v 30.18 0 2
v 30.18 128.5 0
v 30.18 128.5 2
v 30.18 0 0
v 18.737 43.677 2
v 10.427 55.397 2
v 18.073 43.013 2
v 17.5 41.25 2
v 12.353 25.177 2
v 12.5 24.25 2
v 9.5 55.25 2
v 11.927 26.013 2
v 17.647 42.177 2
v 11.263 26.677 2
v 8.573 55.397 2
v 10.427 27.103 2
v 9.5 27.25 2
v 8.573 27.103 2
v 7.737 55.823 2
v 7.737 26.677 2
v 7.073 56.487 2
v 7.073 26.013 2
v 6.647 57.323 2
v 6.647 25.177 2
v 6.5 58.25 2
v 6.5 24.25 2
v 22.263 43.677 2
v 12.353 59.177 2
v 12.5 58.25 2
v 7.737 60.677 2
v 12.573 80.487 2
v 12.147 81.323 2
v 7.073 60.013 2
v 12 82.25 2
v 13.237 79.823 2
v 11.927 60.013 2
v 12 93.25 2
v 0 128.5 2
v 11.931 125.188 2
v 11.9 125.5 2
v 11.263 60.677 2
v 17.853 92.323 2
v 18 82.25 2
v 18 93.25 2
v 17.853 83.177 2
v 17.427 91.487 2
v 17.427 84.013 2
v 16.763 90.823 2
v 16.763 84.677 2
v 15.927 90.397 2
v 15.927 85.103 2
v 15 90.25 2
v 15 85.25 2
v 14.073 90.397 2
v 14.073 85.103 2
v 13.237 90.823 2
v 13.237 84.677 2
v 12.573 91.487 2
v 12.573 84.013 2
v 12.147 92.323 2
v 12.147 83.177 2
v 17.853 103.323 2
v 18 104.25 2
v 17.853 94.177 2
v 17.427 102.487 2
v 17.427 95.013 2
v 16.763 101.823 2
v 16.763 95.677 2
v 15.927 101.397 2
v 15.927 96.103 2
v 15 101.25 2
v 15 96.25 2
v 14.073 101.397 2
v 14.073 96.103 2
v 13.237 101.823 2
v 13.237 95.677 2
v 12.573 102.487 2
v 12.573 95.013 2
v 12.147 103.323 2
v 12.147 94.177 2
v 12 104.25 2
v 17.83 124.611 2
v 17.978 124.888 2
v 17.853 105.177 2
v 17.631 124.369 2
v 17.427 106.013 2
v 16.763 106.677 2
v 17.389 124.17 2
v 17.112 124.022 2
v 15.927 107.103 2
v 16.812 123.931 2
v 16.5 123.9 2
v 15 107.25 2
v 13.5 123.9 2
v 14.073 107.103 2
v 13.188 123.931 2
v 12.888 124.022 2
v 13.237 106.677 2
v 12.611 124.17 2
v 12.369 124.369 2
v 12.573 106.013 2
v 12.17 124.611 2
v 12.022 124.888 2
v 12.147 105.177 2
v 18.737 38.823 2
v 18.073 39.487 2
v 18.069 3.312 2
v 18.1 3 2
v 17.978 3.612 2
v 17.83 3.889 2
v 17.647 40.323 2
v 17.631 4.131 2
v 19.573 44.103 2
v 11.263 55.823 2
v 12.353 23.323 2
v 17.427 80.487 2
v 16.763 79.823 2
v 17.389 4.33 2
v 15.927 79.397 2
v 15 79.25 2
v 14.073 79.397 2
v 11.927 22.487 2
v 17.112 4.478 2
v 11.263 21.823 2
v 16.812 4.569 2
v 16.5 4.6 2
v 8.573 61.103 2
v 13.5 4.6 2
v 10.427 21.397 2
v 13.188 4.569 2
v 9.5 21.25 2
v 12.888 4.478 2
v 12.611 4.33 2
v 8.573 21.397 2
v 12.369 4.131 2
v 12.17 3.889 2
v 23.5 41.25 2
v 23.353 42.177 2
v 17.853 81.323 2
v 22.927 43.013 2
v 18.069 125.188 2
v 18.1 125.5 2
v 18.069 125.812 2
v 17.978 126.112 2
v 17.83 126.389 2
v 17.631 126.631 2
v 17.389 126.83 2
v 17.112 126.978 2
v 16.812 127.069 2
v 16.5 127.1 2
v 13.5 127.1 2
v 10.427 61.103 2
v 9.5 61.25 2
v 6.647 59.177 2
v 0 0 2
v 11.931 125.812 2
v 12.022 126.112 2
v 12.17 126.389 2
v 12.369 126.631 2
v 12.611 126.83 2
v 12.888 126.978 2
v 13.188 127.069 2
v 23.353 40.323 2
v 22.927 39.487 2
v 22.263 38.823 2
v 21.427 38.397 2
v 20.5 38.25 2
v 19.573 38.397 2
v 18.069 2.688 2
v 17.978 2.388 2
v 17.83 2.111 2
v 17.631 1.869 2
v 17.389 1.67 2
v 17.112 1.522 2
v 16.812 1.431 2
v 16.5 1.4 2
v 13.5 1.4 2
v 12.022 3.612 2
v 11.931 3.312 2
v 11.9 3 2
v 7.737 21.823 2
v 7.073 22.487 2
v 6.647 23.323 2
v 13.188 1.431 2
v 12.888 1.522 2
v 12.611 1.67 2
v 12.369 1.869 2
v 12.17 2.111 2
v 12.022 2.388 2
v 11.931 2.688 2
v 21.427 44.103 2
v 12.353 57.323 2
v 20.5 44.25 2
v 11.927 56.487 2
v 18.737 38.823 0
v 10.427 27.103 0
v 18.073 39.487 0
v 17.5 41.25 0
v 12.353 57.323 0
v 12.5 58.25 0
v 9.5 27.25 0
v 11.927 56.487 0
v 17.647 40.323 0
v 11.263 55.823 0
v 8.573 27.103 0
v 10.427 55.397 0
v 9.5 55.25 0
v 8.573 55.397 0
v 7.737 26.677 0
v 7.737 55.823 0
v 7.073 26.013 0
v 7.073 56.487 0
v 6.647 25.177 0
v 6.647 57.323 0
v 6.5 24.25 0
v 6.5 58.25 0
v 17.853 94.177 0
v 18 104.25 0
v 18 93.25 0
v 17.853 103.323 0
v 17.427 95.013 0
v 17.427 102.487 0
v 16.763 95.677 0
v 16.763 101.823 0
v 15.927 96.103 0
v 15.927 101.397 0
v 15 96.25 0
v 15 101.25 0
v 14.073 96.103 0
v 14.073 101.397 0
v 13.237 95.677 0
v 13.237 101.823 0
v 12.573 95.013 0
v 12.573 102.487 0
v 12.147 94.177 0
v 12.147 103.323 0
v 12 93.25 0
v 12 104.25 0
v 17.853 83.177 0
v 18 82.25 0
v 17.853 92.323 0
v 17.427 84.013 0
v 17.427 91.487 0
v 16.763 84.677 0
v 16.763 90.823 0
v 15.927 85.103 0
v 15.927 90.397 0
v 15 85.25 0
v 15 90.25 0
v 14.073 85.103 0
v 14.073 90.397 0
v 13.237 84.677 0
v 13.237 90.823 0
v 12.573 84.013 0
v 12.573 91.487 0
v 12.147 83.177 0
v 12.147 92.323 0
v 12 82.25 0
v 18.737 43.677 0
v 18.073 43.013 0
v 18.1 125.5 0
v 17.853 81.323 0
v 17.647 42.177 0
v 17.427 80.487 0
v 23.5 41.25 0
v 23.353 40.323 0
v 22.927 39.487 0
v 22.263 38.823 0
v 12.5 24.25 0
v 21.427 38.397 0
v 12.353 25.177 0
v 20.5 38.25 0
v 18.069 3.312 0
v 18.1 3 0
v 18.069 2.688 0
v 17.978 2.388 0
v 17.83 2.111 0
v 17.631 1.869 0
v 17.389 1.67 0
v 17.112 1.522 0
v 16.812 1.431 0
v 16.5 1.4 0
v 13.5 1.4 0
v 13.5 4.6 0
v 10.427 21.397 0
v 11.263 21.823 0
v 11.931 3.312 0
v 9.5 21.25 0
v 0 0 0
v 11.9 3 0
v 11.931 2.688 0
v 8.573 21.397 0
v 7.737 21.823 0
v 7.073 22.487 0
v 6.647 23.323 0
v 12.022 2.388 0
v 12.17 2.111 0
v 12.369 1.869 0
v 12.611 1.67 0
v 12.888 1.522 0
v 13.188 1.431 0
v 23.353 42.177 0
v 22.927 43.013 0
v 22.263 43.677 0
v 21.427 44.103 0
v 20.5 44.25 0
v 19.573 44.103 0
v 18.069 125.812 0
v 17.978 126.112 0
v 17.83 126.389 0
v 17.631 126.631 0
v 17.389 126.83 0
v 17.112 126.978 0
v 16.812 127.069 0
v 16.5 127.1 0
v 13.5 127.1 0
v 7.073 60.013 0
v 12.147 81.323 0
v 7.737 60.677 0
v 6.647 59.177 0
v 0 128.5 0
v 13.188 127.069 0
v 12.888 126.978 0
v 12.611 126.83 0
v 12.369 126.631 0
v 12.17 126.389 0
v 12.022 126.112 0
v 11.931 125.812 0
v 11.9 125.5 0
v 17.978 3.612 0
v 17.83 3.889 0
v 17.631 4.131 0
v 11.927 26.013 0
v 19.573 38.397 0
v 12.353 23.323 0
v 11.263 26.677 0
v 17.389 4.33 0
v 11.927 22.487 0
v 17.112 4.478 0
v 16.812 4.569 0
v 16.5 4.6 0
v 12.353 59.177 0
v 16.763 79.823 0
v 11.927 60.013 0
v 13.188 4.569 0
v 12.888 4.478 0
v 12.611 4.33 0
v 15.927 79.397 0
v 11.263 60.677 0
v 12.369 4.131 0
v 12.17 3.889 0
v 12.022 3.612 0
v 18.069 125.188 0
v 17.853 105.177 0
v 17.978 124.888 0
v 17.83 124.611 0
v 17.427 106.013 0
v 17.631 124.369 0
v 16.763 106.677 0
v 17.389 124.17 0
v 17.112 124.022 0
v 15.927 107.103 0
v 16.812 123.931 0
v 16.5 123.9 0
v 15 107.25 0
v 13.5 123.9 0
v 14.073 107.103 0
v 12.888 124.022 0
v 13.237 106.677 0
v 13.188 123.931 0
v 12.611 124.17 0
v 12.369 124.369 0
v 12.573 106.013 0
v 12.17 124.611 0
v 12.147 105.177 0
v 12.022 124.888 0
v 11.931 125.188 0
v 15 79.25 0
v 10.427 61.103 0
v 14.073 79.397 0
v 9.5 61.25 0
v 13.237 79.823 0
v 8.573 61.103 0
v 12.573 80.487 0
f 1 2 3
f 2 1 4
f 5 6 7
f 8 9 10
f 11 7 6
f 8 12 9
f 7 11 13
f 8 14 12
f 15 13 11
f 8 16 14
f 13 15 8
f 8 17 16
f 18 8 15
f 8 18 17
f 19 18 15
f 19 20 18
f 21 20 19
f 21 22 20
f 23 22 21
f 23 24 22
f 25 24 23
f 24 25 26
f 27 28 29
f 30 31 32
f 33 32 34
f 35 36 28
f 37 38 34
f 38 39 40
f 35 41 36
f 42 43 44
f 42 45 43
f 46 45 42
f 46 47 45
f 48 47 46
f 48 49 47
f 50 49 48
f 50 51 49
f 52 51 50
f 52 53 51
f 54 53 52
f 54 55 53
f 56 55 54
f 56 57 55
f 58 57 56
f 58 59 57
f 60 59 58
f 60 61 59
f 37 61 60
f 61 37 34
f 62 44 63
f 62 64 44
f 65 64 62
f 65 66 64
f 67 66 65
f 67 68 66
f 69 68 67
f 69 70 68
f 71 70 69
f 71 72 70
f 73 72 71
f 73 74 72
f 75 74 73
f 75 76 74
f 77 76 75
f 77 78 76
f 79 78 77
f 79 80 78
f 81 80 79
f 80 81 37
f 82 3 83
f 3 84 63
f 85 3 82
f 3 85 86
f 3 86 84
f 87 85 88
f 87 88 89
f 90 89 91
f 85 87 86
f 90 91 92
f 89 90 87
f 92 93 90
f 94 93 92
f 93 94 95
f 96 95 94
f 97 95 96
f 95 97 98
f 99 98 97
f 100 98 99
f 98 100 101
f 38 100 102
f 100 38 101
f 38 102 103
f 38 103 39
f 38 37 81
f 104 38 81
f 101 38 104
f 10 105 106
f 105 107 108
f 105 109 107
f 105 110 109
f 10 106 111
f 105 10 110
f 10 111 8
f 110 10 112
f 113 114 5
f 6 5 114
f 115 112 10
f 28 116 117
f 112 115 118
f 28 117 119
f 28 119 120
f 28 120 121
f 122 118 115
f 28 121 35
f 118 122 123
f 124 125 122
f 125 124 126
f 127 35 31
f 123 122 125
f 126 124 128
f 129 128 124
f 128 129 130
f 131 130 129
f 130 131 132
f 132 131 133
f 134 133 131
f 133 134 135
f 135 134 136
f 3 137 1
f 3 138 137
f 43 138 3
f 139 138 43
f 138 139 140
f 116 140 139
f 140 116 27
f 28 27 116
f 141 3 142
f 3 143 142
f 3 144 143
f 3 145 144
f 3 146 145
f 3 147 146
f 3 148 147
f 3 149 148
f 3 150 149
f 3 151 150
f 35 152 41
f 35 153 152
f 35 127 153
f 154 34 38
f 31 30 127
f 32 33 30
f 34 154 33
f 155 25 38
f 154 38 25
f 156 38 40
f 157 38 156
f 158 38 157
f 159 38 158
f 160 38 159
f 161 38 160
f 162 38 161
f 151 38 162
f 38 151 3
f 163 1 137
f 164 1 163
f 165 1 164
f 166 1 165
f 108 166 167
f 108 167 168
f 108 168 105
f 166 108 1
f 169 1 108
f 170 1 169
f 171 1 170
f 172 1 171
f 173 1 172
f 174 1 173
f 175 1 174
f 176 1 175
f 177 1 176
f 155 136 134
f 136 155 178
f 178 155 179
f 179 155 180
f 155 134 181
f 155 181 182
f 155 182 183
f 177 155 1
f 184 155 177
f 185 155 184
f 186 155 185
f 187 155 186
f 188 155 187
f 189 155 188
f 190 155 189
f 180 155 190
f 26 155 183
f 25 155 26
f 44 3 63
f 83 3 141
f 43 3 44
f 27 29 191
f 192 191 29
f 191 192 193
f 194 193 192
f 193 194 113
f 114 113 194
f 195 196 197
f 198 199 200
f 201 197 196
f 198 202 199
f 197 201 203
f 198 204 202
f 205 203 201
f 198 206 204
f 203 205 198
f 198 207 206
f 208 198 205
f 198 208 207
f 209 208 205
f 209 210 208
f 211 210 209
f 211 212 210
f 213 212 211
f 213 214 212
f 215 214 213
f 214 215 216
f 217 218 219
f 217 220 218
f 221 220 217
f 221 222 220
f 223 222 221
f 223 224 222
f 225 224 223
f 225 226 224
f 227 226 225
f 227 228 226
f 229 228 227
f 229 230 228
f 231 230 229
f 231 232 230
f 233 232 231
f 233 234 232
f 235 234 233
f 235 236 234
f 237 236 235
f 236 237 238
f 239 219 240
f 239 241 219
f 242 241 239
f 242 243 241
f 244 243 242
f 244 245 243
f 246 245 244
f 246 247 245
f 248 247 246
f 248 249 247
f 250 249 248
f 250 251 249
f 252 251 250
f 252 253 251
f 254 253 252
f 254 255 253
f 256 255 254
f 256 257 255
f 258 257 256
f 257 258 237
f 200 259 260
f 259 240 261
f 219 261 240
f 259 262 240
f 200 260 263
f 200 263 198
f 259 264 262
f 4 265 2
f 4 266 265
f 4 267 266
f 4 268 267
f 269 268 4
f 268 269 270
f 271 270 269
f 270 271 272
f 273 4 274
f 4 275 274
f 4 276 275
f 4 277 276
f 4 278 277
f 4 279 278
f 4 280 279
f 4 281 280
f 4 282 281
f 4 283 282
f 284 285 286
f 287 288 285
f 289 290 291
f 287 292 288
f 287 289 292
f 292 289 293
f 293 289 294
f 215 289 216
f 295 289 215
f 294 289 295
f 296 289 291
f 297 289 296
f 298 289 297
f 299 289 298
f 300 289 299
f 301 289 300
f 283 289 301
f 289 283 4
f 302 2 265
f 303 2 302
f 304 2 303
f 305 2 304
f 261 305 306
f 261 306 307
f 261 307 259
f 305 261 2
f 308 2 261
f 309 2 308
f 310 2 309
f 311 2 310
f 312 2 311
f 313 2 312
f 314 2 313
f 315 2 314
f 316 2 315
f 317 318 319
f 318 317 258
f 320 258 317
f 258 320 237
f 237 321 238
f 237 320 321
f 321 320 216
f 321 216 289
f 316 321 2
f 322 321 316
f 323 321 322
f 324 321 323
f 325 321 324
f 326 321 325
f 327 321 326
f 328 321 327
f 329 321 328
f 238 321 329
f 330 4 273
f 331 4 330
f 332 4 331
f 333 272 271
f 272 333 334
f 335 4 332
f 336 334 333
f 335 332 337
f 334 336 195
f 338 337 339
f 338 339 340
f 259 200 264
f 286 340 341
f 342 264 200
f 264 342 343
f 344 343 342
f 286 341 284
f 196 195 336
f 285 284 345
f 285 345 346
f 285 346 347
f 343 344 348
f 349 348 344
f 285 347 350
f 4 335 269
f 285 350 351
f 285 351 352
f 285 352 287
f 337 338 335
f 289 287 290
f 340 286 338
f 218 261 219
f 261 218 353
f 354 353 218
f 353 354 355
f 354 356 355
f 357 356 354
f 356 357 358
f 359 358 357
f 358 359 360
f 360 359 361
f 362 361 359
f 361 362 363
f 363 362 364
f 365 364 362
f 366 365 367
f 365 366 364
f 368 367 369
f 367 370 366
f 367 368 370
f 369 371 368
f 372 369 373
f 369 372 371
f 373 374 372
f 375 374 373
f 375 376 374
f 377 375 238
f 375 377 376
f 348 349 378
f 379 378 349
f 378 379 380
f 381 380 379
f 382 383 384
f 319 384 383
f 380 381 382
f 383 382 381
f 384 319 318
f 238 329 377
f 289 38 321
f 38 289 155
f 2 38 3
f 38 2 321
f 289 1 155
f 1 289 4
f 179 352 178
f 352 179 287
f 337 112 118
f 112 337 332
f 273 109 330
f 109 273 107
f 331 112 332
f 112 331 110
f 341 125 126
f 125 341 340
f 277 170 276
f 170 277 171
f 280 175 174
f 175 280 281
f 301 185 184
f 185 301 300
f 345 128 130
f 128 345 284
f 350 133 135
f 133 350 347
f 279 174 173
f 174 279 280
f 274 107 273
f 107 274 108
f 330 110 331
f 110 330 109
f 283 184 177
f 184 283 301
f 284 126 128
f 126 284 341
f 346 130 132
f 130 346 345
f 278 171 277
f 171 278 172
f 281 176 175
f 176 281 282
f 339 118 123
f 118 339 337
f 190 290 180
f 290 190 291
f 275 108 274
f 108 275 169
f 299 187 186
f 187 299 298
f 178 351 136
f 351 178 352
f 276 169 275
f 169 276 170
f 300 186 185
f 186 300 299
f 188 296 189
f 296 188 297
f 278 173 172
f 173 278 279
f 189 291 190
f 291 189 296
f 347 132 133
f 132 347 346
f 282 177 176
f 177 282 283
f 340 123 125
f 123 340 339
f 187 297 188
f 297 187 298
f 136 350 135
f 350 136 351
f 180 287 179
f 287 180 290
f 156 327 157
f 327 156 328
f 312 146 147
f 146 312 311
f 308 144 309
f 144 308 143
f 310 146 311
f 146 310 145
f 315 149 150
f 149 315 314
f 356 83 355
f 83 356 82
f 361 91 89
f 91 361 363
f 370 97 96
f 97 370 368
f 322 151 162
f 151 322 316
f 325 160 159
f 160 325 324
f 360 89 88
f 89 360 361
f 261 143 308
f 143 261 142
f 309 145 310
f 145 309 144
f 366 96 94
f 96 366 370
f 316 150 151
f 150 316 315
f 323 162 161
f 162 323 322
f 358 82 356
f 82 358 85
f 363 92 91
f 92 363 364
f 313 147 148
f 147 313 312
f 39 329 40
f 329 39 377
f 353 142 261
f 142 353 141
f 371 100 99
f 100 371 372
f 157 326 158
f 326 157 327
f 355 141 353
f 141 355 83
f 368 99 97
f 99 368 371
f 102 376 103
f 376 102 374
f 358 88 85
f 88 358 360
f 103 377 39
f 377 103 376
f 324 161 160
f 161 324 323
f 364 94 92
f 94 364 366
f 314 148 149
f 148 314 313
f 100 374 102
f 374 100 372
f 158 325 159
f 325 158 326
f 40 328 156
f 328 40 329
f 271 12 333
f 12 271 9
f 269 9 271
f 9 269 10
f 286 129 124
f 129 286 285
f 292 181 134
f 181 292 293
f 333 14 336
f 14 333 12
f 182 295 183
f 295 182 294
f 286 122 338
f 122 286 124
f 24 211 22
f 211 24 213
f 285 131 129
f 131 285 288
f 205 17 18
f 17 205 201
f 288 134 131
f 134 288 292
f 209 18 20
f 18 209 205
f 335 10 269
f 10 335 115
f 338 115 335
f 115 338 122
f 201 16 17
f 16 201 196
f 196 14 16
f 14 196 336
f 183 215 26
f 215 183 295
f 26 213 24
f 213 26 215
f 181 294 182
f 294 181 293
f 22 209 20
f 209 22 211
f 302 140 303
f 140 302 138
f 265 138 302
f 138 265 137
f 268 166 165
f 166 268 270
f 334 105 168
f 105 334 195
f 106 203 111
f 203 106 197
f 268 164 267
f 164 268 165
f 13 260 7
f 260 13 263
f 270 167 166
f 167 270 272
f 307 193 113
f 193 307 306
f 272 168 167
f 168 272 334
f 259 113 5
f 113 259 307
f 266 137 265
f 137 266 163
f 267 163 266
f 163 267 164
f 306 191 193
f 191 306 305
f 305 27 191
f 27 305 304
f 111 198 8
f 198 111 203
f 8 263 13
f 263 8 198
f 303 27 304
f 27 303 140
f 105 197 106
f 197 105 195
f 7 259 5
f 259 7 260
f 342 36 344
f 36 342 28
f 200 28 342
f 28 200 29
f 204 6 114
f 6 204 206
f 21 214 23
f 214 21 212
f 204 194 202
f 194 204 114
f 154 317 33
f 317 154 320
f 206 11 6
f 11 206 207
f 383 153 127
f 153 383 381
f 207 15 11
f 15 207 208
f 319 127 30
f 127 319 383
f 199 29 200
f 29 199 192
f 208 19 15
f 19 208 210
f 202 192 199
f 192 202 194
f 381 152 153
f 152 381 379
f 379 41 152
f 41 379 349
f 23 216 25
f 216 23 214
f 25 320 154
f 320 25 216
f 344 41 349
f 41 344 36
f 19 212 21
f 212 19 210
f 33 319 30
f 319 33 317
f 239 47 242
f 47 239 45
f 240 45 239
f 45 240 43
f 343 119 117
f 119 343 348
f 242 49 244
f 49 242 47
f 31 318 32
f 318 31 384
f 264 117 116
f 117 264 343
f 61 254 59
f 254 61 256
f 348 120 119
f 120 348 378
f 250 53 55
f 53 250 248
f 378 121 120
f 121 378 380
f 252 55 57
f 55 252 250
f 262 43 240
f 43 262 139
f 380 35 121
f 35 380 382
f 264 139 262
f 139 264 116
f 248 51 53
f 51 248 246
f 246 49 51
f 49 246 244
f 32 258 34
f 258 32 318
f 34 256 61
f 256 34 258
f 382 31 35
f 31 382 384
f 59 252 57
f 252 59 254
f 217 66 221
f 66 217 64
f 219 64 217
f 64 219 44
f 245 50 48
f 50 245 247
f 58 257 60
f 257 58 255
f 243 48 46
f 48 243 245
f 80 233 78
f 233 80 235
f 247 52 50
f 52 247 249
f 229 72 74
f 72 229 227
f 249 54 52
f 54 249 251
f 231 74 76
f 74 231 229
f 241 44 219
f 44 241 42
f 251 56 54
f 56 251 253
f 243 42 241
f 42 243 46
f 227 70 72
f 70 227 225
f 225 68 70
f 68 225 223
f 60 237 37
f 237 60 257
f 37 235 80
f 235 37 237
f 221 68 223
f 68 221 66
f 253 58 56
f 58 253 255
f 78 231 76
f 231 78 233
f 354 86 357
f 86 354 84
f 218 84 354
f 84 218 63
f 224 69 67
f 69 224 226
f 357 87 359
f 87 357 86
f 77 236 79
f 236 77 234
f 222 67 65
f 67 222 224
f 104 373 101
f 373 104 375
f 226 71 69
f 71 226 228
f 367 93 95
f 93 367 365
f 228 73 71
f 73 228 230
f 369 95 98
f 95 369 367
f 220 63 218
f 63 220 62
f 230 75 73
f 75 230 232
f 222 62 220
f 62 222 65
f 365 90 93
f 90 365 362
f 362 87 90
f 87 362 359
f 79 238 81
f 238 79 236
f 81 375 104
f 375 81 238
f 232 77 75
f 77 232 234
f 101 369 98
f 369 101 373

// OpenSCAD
// file: eurorack.scad
panelHeight = 128.5;
thickness = 2;
mountHoleOffset=7.5;
mountHoleGap=5.08;
mountHoleDiameter = 3.0;
jackHoleDiameter = 6;
ledHoleDiameter = 5;
pushButtonHoleDiameter = 7;
potHoleDiameter = 6;
switchHoleDiameter = 6;
rotarySwitchHoleDiameter = 9.1;
microSwitchHoleDiameter=3;


function hp(x) = x * 5.08 - 0.3;


// Eurorack mounting hole.
//   x, y      : hole center position (panel coordinates)
//   d         : hole diameter (3.2 default = M3 clearance, slightly oversize)
//   slot      : horizontal slot length for tolerance (0 = plain round hole)
//   depth     : cut depth; leave default to punch fully through any panel thickness
module euroRackMountHole(x, y, d = 3.2, slot = 1, depth = 100) {
    translate([x, y, -depth/2])
        hull() {
            // two cylinders spaced by `slot` make an obround (stadium) slot;
            // slot = 0 collapses to a single round hole
            for (dx = [-slot/2, slot/2])
                translate([dx, 0, 0])
                    cylinder(h = depth, d = d, $fn = 32);
        }
}

module euroRackMountHoles(n_top, n_bot) {
   euroRackMountHole(mountHoleOffset + n_top*mountHoleGap, 3, slot=3);
   euroRackMountHole(mountHoleOffset + n_bot*mountHoleGap, panelHeight-3, slot=3);
}

module punchHole(x, y, holeSize,chamfer=false){
  translate([x, y, -1]){
    cylinder(r=holeSize/2, h=thickness+2, $fn=20);
    if(chamfer) {
      translate([0, 0, 0.5]){
        cylinder(r2=holeSize, r1=0, h=holeSize+0.5, $fn=20);
      }
    }
  }
}

module led(x, y) {
    punchHole(x, y, ledHoleDiameter);
}
module microswitch(x, y) {
    punchHole(x, y, microSwitchHoleDiameter);
}
module switch(x, y) { 
    punchHole(x, y, switchHoleDiameter);
}
module pushButton(x, y) { 
    punchHole(x, y, pushButtonHoleDiameter);
}
module rotarySwitch(x, y) { 
    punchHole(x, y, rotarySwitchHoleDiameter);
}
module sevenSegmentDisplay(x, y) {
    translate([x-6.5, y-9.6, -1]){
        cube([13, 19.2, thickness+2]);
    }
}

module pot(x, y) {
  punchHole(x, y, potHoleDiameter);
}

module jack(x, y){
  punchHole(x, y, jackHoleDiameter);
}

module panel(width) {
   cube([width, panelHeight, thickness]);
}
// main file
include <eurorack.scad>

width = hp(6);


 difference() {
     panel(width);
     euroRackMountHole(15, 3, slot=3);
     euroRackMountHole(15, panelHeight - 3, slot=3);
     
     jack(9.5, 24.25);
     jack(20.5, 41.25);
     jack(9.5, 58.25);
     
     jack(15, 82.25);
     jack(15, 93.25);
     jack(15, 104.25);
     
 }
